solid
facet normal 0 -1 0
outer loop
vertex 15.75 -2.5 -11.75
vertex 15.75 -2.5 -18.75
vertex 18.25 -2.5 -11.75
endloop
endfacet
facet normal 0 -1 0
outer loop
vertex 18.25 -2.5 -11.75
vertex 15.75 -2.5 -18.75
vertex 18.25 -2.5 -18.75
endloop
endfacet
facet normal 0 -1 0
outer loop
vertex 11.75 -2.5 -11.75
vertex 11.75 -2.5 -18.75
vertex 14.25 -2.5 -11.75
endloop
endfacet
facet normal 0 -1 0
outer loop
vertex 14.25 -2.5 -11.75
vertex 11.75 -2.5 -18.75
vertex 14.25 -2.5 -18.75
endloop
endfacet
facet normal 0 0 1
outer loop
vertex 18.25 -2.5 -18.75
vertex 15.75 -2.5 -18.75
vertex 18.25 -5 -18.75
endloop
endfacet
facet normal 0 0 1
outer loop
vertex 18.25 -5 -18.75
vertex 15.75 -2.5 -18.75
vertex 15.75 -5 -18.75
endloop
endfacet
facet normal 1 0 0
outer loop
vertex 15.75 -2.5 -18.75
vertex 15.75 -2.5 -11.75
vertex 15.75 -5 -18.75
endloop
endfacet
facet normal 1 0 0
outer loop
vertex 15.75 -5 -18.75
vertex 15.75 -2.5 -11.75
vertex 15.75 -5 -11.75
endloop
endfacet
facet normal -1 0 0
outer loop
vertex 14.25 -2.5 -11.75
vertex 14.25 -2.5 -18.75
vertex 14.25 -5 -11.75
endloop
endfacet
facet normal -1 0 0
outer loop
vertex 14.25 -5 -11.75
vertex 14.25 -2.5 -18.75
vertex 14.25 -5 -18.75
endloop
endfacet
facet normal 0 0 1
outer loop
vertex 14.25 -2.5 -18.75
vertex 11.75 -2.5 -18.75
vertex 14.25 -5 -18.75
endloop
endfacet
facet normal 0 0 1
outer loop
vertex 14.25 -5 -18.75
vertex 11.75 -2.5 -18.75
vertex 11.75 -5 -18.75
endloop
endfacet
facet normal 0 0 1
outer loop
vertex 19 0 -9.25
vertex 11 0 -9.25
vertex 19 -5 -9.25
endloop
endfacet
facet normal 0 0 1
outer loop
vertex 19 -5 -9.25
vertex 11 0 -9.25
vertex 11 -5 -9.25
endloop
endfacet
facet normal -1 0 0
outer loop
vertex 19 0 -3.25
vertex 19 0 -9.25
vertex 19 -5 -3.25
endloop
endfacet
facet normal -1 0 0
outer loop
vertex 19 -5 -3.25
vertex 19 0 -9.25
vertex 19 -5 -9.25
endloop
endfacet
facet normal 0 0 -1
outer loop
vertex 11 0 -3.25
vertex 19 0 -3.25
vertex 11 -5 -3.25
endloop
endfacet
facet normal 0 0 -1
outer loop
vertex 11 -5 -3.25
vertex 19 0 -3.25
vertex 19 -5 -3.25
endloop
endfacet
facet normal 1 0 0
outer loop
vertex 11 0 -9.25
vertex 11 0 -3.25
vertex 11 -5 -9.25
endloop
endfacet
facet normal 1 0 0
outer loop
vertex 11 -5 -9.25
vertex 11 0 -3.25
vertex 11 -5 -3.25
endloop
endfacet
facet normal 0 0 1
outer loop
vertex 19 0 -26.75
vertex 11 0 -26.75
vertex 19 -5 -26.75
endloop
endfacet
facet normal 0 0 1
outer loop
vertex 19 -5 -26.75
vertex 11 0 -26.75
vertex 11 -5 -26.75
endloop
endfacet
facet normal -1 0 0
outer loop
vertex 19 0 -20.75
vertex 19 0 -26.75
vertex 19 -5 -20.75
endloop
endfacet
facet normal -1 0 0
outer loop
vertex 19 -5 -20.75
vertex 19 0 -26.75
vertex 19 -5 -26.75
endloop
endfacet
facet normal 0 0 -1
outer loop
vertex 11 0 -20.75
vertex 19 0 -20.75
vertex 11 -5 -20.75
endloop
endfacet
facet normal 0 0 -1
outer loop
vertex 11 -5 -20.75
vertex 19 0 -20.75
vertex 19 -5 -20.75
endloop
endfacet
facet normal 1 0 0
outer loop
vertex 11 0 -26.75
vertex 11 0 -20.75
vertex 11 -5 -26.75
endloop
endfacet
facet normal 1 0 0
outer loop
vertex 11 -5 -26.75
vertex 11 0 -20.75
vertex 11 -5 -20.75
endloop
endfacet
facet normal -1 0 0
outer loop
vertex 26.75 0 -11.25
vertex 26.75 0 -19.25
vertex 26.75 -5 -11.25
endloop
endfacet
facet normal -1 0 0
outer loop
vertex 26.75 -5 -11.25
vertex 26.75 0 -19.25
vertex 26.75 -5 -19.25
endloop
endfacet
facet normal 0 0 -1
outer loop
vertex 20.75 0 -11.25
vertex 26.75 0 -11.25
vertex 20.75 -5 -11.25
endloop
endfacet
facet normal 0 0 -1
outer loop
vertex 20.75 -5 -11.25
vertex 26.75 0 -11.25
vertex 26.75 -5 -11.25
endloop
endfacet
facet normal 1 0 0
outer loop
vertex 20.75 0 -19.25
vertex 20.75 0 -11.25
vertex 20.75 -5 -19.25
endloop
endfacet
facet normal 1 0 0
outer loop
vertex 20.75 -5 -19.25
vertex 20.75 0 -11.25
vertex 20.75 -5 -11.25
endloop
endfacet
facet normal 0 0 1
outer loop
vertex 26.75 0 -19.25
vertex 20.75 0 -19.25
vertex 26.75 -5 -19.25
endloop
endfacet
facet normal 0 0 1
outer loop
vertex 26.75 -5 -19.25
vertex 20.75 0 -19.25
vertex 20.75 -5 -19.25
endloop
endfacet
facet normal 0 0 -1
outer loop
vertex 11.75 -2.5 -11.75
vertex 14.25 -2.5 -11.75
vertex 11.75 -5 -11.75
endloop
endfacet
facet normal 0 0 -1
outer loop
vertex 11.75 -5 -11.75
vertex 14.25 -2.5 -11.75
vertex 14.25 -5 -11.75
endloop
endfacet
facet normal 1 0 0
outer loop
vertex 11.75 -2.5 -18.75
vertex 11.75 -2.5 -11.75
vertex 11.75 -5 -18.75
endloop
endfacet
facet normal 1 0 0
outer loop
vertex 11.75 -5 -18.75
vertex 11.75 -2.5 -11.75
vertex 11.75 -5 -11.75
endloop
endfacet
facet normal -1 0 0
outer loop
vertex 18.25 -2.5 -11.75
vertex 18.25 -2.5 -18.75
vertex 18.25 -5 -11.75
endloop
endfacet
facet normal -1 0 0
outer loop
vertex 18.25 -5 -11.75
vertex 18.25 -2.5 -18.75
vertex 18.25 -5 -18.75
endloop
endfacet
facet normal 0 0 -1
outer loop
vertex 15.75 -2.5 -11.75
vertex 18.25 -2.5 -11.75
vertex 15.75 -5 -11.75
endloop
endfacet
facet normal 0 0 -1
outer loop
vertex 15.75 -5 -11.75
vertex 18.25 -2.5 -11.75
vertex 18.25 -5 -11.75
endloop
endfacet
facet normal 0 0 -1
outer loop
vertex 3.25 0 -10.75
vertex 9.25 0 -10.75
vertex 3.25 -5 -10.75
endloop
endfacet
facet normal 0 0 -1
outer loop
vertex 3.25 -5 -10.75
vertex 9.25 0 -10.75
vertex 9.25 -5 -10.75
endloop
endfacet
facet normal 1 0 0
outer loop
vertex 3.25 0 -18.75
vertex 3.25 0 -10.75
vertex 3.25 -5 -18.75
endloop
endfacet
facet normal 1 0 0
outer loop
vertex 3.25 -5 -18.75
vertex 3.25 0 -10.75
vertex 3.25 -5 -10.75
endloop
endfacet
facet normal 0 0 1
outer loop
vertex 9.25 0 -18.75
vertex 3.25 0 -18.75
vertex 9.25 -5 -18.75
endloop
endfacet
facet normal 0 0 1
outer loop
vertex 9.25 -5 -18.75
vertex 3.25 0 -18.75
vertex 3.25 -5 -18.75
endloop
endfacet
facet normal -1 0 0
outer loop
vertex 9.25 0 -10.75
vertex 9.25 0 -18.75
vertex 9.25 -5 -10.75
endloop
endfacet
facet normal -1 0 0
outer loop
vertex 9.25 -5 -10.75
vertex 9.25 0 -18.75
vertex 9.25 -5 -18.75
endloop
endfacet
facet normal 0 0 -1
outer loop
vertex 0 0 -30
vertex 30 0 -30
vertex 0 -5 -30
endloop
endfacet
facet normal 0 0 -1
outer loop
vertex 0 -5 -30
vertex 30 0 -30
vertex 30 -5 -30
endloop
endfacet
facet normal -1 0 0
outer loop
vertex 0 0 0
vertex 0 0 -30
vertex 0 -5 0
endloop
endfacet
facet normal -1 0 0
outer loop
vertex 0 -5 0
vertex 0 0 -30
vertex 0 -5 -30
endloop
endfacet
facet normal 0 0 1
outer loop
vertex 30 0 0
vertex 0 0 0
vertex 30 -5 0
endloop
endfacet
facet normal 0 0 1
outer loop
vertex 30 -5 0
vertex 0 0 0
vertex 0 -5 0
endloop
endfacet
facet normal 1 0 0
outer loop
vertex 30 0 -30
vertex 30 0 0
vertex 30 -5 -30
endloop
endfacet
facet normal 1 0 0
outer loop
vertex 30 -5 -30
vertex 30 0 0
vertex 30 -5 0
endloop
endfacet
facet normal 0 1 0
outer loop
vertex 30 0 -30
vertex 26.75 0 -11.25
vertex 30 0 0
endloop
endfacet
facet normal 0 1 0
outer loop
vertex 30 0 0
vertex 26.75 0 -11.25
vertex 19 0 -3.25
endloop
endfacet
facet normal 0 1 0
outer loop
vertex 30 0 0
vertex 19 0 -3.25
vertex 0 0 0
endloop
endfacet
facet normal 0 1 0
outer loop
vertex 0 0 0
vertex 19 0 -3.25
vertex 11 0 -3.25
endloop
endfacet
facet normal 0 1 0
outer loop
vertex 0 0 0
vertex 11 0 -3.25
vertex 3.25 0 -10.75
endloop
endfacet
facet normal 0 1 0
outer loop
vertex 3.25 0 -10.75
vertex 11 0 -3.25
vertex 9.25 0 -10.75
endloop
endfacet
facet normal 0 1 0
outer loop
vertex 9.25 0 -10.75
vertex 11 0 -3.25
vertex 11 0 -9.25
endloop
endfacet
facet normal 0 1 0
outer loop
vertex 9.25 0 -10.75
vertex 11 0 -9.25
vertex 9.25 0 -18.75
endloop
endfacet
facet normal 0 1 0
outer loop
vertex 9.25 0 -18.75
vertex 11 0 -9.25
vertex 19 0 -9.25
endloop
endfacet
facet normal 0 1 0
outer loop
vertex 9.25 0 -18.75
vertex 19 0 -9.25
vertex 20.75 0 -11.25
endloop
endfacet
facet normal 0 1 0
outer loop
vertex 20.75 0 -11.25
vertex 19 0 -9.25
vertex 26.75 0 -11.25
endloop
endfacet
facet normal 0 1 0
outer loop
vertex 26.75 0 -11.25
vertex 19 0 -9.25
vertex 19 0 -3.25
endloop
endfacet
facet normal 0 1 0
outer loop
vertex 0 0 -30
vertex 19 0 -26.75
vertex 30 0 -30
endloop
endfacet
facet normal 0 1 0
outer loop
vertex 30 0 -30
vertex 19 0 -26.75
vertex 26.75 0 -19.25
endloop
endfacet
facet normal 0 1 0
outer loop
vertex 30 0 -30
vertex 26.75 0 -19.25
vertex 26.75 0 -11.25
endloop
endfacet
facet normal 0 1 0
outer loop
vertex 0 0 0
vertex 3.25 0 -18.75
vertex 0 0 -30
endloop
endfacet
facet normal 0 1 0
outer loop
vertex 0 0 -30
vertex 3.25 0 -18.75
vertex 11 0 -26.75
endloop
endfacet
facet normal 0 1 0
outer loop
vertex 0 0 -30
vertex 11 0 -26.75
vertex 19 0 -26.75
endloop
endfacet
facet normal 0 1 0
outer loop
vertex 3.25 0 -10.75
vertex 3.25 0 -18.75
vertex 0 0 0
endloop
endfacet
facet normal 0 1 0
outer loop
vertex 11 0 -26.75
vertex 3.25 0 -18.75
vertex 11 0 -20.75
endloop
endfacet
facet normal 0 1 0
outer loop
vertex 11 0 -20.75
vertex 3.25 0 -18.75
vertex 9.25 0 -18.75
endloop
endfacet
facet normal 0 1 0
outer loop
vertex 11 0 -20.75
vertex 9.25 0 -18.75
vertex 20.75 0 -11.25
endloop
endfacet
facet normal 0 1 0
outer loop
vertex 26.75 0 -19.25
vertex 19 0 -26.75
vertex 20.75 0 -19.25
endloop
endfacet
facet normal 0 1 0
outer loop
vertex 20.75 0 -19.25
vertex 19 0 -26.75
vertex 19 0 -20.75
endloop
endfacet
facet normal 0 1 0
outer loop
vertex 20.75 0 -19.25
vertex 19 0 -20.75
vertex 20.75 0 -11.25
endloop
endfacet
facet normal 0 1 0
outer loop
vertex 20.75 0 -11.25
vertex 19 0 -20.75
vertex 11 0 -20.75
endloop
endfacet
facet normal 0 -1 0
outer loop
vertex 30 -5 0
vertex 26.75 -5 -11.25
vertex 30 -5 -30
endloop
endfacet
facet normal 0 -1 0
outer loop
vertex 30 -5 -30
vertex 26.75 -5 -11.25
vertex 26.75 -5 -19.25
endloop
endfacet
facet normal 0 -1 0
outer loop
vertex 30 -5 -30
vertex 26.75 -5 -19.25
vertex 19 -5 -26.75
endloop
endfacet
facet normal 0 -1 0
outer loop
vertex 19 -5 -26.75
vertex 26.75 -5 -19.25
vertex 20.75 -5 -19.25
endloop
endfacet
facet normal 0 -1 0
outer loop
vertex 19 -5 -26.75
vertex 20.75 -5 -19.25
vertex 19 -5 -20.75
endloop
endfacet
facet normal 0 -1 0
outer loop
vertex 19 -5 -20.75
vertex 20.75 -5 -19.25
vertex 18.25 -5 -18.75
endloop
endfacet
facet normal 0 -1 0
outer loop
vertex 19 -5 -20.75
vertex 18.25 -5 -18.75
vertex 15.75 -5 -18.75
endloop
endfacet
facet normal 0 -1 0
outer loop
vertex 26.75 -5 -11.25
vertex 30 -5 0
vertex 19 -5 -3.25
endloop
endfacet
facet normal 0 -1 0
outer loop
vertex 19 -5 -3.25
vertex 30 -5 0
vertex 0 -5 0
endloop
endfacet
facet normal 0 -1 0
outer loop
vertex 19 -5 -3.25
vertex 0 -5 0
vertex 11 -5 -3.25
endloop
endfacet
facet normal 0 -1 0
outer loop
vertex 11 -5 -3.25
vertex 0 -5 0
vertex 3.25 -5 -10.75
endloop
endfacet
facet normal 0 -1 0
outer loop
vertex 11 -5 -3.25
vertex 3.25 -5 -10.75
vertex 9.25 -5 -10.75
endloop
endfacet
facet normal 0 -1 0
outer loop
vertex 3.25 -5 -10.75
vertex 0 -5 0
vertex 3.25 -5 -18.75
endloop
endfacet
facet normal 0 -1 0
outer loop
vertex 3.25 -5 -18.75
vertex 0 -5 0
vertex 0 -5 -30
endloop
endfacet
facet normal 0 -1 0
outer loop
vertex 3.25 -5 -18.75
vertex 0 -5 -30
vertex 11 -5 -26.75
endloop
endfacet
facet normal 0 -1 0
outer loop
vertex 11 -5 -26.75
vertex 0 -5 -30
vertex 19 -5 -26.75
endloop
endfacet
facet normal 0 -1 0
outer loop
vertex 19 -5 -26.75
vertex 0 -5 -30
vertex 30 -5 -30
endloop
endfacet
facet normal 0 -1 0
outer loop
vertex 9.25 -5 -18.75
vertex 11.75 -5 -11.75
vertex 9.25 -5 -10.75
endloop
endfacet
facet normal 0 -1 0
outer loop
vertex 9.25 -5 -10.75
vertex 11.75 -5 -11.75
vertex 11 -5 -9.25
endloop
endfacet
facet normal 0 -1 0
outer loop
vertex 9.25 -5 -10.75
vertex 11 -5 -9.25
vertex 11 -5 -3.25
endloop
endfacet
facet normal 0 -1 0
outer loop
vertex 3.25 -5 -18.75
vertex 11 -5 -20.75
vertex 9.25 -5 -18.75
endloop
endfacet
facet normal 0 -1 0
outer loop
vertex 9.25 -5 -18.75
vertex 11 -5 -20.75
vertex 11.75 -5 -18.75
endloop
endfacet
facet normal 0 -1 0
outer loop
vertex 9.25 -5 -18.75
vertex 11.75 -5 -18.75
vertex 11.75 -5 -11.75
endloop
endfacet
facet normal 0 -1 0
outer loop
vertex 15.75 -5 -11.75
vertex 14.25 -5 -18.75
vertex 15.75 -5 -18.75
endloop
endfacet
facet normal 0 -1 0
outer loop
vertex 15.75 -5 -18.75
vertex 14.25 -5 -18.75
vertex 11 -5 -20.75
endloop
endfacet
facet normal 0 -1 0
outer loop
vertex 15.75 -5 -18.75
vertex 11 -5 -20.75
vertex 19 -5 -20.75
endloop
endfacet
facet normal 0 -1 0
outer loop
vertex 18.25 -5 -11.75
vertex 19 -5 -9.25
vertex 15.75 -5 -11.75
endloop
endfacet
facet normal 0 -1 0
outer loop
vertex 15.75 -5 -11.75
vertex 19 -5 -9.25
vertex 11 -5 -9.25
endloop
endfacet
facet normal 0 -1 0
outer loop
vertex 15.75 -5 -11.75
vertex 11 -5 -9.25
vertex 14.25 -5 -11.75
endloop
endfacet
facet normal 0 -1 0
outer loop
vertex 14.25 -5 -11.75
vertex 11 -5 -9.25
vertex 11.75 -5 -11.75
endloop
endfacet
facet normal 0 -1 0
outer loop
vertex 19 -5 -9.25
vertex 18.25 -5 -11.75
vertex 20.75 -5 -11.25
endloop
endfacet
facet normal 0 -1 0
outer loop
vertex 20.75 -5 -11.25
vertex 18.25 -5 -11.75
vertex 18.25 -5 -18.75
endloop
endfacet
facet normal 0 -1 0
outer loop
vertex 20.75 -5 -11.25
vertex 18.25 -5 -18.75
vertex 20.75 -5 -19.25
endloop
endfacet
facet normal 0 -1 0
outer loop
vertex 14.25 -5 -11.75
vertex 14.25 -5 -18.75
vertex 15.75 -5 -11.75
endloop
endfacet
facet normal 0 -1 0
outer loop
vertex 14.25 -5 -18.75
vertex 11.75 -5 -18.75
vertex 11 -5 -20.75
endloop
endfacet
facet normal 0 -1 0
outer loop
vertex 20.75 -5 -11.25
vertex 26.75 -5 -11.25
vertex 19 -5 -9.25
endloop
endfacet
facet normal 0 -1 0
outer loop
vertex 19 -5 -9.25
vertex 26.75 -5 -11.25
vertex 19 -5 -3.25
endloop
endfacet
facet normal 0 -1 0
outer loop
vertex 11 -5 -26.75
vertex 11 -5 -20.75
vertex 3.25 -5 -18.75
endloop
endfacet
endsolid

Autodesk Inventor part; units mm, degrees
ref_plane "YZ Plane" through (0, 0, 0) normal (1, 0, 0) x (0, 1, 0)
ref_plane "XZ Plane" through (0, 0, 0) normal (0, 1, 0) x (-1, 0, 0)
ref_plane "XY Plane" through (0, 0, 0) normal (0, 0, 1) x (1, 0, 0)
sketch "Sketch1" plane through (0, 0, 0) normal (0, 1, 0) x (-1, 0, 0)
  point P0 (0, 0)
sketch "Sketch2" plane through (0, 0, 0) normal (0, 1, 0) x (-1, 0, 0)
  line L0 (0, 0) -> (-30, 0)
  line L1 (-30, 0) -> (-30, -30)
  line L2 (-30, -30) -> (0, -30)
  line L3 (0, -30) -> (0, 0)
  line L4 (0, -30) -> (-30, 0) construction
  line L5 (0, 0) -> (-30, -30) construction
  line L6 (-15, -15) -> (0, -15) construction
  line L7 (-15, -15) -> (-30, -15) construction
  line L8 (-15, -15) -> (-15, -30) construction
  line L9 (-15, -15) -> (-15, 0) construction
  line L10 (-15, -15) -> (-9.25, -15) construction
  line L11 (-15, -17.4158) -> (-15, -15) construction
  line L12 (-15, -15) -> (-15, -20.75) construction
  line L13 (-15, -15) -> (-15, -9.25) construction
  line L14 (-15, -15) -> (-9.25, -15) construction
  line L15 (-15, -15) -> (-20.75, -15) construction
  line L16 (-15, -20.75) -> (-9.25, -15) construction
  line L17 (-9.25, -15) -> (-9.25, -20.75) construction
  line L18 (-9.25, -20.75) -> (-15, -20.75) construction
  line L19 (-15, -20.75) -> (-20.75, -20.75) construction
  line L20 (-20.75, -20.75) -> (-20.75, -15) construction
  line L21 (-9.25, -15) -> (-9.25, -9.25) construction
  line L22 (-15, -9.25) -> (-9.25, -9.25) construction
  line L23 (-15, -9.25) -> (-20.75, -9.25) construction
  line L24 (-20.75, -9.25) -> (-20.75, -15) construction
  line L25 (-15, -9.25) -> (-11, -9.25) construction
  line L26 (-15, -9.25) -> (-19, -9.25) construction
  line L27 (-11, -9.25) -> (-19, -9.25)
  line L28 (-11, -9.25) -> (-11, -3.25)
  line L29 (-11, -3.25) -> (-19, -3.25)
  line L30 (-19, -3.25) -> (-19, -9.25)
  line L31 (-11, -20.75) -> (-19, -20.75)
  line L32 (-19, -20.75) -> (-19, -26.75)
  line L33 (-19, -26.75) -> (-11, -26.75)
  line L34 (-11, -26.75) -> (-11, -20.75)
  line L35 (-9.25, -9.25) -> (-9.25, -10.75)
  line L36 (-9.25, -20.75) -> (-9.25, -18.75)
  line L37 (-9.25, -18.75) -> (-9.25, -19.25)
  line L38 (-9.25, -18.75) -> (-9.25, -10.75)
  line L39 (-9.25, -10.75) -> (-3.25, -10.75)
  line L40 (-3.25, -10.75) -> (-3.25, -18.75)
  line L41 (-3.25, -18.75) -> (-9.25, -18.75)
  line L42 (-9.25, -19.25) -> (-20.75, -19.25) construction
  line L43 (-20.75, -19.25) -> (-20.75, -11.25)
  line L44 (-20.75, -11.25) -> (-26.75, -11.25)
  line L45 (-26.75, -11.25) -> (-26.75, -19.25)
  line L46 (-26.75, -19.25) -> (-20.75, -19.25)
  line L47 (-9.25, -18.75) -> (-11.75, -18.75) construction
  line L48 (-11.75, -18.75) -> (-11.75, -10.75) construction
  line L49 (-11.75, -10.75) -> (-9.25, -10.75) construction
  line L50 (-20.75, -19.25) -> (-18.25, -19.25) construction
  line L51 (-18.25, -19.25) -> (-18.25, -11.25) construction
  line L52 (-18.25, -11.25) -> (-20.75, -11.25) construction
  line L53 (-9.25, -10.75) -> (-9.25, -11.75) construction
  line L54 (-9.25, -11.75) -> (-11.75, -11.75) construction
  line L55 (-20.75, -11.25) -> (-20.75, -11.75) construction
  line L56 (-20.75, -11.75) -> (-18.25, -11.75) construction
  line L57 (-11.75, -18.75) -> (-20.75, -18.75) construction
  line L58 (-18.25, -18.75) -> (-18.25, -11.75) construction
  line L59 (-15, -18.75) -> (-14.25, -18.75) construction
  line L60 (-15, -18.75) -> (-15.75, -18.75) construction
  line L61 (-11.75, -18.75) -> (-11.75, -11.75)
  line L62 (-11.75, -18.75) -> (-14.25, -18.75)
  line L63 (-11.75, -11.75) -> (-14.25, -11.75)
  line L64 (-14.25, -18.75) -> (-14.25, -11.75)
  line L65 (-15.75, -18.75) -> (-18.25, -18.75)
  line L66 (-18.25, -18.75) -> (-18.25, -11.75)
  line L67 (-18.25, -11.75) -> (-15.75, -11.75)
  line L68 (-15.75, -11.75) -> (-15.75, -18.75)
  dimension "d0" = 30
  dimension "d1" = 30
  dimension "d3" = 5.75
  dimension "d4" = 5.75
  dimension "d5" = 5.75
  dimension "d6" = 5.75
  dimension "d7" = 4
  dimension "d8" = 4
  dimension "d9" = 6
  dimension "d10" = 6
  dimension "d11" = 8
  dimension "d12" = 1.5
  dimension "d13" = 2
  dimension "d14" = 0.5
  dimension "d15" = 6
  dimension "d16" = 8
  dimension "d17" = 6
  dimension "d18" = 2.5
  dimension "d19" = 2.5
  dimension "d20" = 1
  dimension "d21" = 0.75
  dimension "d22" = 0.75
extrude "Extrusion1" add sketch "Sketch2" against normal blind 5
extrude "Extrusion2" add sketch "Sketch2" against normal blind 2.5 contours L62 L64 L63 L61 | L65 L66 L67 L68
properties part number "switch_test_v1_3DPrint"
